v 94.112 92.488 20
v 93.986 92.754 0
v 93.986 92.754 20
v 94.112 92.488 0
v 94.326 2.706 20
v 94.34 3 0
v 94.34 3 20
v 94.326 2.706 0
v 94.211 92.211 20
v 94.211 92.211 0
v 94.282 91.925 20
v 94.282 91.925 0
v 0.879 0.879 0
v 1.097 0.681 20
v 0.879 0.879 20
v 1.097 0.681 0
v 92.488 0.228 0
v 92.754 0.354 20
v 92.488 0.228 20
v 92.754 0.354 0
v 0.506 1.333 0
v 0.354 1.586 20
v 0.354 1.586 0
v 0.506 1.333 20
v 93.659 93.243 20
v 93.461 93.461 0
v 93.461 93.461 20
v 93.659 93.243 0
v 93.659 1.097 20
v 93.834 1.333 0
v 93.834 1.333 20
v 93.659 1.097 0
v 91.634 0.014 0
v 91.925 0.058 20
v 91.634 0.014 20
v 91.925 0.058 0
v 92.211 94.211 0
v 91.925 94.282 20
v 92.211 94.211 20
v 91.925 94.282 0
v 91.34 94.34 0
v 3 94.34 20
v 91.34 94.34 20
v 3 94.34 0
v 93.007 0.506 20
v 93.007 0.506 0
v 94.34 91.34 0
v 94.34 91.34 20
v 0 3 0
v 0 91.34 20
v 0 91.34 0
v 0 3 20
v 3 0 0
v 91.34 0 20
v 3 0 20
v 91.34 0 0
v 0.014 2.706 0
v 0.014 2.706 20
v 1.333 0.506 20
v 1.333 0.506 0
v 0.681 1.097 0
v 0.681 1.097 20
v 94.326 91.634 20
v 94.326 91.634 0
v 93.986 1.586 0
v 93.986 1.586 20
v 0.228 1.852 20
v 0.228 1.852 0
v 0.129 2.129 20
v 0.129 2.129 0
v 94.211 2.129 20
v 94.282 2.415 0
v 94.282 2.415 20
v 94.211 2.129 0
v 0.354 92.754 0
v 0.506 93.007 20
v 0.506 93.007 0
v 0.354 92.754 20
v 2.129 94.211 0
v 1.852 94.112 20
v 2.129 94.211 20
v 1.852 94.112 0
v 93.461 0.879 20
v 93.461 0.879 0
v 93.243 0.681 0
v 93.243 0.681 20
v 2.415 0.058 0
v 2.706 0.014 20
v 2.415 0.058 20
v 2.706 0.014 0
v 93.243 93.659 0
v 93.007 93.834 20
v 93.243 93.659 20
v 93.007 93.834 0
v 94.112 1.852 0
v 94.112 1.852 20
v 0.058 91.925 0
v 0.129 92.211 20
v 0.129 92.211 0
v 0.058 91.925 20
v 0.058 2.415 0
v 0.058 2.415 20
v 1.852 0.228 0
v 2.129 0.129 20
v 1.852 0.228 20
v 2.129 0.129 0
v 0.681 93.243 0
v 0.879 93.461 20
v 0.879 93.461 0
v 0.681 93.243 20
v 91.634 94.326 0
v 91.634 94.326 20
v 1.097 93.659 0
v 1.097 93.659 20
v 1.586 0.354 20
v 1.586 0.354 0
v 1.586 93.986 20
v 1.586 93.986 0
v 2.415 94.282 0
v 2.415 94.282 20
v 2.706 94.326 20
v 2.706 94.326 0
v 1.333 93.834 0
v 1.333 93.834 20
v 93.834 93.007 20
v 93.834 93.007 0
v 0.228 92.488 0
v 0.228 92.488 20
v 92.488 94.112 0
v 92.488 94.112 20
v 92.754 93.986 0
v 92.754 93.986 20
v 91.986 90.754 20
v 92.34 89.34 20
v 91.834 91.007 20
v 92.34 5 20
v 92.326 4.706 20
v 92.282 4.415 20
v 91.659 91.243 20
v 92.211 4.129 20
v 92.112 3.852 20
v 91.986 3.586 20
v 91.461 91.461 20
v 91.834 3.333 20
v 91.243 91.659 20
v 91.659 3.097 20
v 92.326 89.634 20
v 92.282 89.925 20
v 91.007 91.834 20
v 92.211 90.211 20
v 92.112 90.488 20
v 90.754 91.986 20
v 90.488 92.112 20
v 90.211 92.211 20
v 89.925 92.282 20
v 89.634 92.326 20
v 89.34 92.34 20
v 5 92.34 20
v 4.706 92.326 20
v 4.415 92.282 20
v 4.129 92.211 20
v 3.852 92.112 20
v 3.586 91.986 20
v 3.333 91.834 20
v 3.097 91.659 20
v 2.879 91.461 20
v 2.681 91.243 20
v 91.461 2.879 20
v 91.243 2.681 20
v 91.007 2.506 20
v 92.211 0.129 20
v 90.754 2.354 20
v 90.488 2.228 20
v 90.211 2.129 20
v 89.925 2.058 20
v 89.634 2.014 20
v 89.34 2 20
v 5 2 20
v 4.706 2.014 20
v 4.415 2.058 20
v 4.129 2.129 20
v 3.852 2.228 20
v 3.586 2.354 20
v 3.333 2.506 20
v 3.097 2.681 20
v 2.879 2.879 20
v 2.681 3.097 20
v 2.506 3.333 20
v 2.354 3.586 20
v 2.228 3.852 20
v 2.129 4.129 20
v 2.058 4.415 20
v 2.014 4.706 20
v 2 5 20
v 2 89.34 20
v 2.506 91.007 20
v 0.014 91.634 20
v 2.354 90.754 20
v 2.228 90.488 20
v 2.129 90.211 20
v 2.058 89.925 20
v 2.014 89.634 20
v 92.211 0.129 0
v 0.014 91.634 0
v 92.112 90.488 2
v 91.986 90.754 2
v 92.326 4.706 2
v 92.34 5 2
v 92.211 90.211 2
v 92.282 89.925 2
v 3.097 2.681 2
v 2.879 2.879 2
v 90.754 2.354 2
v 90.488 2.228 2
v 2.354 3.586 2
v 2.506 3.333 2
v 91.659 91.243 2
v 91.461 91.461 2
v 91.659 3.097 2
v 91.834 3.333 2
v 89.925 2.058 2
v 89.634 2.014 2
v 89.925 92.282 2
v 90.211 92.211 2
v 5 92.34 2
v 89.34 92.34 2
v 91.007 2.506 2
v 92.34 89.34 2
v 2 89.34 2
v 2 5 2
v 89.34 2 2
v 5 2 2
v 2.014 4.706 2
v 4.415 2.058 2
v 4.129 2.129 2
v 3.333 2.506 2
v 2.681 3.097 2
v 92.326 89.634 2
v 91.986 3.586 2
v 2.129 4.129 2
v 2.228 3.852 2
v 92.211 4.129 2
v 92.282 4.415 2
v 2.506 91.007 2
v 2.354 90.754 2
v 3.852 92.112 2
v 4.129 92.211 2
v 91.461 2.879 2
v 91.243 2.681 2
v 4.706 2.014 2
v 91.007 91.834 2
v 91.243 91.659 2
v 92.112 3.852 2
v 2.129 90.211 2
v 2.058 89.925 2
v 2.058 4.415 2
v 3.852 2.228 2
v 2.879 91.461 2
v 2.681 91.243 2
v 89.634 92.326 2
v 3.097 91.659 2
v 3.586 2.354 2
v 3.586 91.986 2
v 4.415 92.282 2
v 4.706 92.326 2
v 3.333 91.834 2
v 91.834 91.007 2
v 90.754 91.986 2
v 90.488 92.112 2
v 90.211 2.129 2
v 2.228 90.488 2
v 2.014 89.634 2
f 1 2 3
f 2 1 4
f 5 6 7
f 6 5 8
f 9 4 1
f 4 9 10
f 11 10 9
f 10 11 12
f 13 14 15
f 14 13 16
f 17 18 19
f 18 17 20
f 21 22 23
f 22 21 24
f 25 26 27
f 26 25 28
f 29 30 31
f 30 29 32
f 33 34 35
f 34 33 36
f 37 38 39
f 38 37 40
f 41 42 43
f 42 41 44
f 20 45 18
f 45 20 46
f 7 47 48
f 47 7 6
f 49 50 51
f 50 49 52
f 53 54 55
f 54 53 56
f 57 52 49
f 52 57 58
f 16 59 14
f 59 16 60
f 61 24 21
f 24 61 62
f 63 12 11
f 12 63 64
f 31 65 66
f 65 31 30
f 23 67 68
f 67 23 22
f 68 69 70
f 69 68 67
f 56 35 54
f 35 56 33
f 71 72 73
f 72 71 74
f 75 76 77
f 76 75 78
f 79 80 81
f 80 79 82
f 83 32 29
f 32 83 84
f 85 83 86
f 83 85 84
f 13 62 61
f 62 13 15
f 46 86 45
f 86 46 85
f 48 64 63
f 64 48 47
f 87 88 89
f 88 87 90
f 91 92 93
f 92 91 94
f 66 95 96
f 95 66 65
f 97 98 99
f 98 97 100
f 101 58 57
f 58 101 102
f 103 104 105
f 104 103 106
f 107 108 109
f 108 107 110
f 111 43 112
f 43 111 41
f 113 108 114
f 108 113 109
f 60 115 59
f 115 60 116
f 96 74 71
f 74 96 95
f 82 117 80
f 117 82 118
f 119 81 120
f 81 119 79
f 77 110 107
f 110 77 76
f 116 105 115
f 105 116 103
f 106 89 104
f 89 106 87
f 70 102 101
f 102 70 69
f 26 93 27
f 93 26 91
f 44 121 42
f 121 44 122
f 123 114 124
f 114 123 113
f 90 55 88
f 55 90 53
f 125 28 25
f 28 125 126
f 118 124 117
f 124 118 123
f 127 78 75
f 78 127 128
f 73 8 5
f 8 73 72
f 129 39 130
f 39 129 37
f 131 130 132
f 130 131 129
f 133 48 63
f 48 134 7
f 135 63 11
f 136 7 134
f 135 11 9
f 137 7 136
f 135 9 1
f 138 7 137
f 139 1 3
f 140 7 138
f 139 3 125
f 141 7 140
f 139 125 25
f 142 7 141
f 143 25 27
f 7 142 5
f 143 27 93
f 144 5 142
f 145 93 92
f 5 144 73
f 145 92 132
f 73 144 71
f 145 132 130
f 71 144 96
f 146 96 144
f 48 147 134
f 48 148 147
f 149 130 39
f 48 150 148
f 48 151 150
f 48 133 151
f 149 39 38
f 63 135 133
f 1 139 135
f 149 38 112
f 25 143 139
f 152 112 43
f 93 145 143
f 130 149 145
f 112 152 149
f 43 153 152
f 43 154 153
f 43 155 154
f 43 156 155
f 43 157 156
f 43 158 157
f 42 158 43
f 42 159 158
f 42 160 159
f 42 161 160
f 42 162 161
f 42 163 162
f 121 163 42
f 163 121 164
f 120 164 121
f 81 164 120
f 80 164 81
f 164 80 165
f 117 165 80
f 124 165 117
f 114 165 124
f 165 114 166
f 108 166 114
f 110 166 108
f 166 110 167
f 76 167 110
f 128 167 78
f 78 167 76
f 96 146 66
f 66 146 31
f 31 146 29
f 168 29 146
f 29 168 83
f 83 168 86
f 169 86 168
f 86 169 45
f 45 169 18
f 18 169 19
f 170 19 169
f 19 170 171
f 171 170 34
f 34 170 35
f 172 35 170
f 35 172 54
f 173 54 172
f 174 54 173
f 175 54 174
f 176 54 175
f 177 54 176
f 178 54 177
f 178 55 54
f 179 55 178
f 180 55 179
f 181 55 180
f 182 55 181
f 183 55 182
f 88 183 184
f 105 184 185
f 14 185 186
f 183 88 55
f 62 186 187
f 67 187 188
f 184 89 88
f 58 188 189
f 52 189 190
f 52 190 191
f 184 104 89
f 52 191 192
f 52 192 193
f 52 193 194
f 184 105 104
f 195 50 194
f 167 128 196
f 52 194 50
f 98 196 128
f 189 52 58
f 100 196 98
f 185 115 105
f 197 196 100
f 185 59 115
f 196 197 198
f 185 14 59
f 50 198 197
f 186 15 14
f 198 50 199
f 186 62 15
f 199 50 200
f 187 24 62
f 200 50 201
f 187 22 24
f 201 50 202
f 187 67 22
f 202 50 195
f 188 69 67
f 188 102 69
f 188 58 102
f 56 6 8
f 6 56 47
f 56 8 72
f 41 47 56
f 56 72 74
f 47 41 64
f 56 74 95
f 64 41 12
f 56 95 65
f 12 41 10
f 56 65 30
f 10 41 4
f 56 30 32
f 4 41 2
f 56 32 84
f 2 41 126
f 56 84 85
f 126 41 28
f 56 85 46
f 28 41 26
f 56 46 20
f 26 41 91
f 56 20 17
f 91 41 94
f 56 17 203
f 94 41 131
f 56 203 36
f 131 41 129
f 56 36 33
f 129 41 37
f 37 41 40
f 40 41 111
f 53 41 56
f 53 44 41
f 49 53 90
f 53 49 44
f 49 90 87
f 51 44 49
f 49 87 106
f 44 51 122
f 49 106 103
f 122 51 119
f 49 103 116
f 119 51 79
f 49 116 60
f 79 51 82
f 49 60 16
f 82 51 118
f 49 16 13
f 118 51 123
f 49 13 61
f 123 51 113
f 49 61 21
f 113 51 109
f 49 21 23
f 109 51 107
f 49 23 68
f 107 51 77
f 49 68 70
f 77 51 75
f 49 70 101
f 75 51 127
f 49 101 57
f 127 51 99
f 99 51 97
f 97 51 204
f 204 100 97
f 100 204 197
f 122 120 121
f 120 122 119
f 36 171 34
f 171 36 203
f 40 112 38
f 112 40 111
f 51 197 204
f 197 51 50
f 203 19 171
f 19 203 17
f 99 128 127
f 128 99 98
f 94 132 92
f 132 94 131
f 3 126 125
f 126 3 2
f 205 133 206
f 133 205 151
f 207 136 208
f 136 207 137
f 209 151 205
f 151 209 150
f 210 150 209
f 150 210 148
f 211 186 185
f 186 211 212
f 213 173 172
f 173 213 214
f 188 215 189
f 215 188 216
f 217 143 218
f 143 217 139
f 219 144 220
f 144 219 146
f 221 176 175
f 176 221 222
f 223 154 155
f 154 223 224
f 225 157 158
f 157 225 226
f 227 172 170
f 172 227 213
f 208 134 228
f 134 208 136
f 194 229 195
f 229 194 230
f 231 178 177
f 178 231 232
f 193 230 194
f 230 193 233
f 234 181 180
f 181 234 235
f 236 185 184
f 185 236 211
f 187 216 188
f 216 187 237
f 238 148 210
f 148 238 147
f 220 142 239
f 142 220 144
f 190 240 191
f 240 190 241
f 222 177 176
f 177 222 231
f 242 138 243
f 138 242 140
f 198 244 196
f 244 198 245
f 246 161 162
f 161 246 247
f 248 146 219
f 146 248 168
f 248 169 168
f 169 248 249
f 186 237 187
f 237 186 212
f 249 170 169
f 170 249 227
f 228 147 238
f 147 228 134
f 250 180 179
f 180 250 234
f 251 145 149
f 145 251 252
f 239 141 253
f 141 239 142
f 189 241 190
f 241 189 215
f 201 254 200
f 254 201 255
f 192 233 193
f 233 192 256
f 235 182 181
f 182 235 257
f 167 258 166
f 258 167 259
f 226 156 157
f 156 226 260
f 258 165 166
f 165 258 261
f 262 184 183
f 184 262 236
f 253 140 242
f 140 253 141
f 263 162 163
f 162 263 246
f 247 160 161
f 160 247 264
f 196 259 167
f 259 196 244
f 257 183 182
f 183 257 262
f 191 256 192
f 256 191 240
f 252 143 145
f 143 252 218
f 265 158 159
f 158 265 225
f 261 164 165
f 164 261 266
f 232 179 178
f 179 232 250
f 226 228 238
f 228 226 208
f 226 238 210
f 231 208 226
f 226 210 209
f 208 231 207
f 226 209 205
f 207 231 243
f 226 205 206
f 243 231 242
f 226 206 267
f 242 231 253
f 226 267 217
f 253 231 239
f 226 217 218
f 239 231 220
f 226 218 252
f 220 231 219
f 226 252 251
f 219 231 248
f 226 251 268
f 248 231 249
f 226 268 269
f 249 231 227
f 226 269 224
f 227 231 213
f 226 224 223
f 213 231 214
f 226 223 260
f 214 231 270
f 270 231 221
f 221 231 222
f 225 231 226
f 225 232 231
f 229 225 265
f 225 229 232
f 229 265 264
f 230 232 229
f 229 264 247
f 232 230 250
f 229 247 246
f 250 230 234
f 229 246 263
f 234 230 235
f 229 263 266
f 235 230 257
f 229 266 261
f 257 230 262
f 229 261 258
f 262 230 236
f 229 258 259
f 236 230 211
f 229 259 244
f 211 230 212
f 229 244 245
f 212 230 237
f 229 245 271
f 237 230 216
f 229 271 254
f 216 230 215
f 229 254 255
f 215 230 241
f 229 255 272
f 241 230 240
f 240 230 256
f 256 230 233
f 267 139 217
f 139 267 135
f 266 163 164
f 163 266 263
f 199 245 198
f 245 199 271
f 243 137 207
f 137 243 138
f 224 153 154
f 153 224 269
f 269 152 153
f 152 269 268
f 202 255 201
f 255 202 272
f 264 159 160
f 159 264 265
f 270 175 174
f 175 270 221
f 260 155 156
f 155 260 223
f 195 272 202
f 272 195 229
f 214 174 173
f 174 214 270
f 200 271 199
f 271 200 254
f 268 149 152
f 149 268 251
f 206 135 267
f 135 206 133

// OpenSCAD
// file: mixin.scad
$fn = 64;

POT_SIZE = 90;
WALL_WIDTH = 2;
CORNER_RADIUS = 3;

LEG_WIDTH = 6;
LEG_LENGTH = 20;
PIN_DEPTH = 20;
PIN_LENGTH = PIN_DEPTH - WALL_WIDTH * 2;

PIN_WIDTH = 3;
PIN_HEIGHT = POT_SIZE / 2 + POT_SIZE / 4;
FIT_GAP = 0.34;
OVERCUT = 0.1;

FIRST_LEG_Y = CORNER_RADIUS;
SECOND_LEG_Y = POT_SIZE - CORNER_RADIUS - LEG_WIDTH;

SLOT_WIDTH = 3;
SLOT_STEP = 6;

module rounded_box(size = [10, 10, 5], corner_radius = CORNER_RADIUS) {
  translate([size[0] / 2, size[1] / 2, 0]) {
    linear_extrude(height=size[2]) {
      minkowski() {
        square([size[0] - 2 * corner_radius, size[1] - 2 * corner_radius], center=true);
        circle(r=corner_radius);
      }
    }
  }
}

module bottom_slots() {
  between_legs_span = POT_SIZE - 2 * (CORNER_RADIUS + LEG_WIDTH);
  slot_count_half = floor((between_legs_span / 2 - SLOT_WIDTH / 2) / SLOT_STEP);
  for (slot_index = [-slot_count_half:slot_count_half])
    translate([WALL_WIDTH, POT_SIZE / 2 + slot_index * SLOT_STEP - SLOT_WIDTH / 2, -OVERCUT])
      cube([POT_SIZE, SLOT_WIDTH, WALL_WIDTH + OVERCUT * 2]);
}

module pot_shell() {
  rotate([0, -90, 0]) difference() {
    rounded_box([POT_SIZE, POT_SIZE, POT_SIZE]);
    translate([WALL_WIDTH, WALL_WIDTH, WALL_WIDTH])
      rounded_box([
        POT_SIZE - WALL_WIDTH * 2,
        POT_SIZE - WALL_WIDTH * 2,
        POT_SIZE + WALL_WIDTH * 2,
      ]);
    translate([POT_SIZE / 2, -WALL_WIDTH, -WALL_WIDTH])
      cube([POT_SIZE, POT_SIZE + WALL_WIDTH * 2, POT_SIZE * 2]);

    bottom_slots();
  }
}

module angled_cut(leg_y) {
  translate([-0.1 - WALL_WIDTH, leg_y - 0.1, 0]) rotate([0, 40, 0])
    cube([LEG_LENGTH + 0.2, LEG_WIDTH + 0.2, POT_SIZE / 2]);
}

module leg(leg_y) {
  leg_height = POT_SIZE / 2;
  difference() {
    translate([0, leg_y, WALL_WIDTH + FIT_GAP])
      cube([LEG_LENGTH, LEG_WIDTH, leg_height - WALL_WIDTH - FIT_GAP]);

    angled_cut(leg_y);
  }
}

module legs() {
  leg(FIRST_LEG_Y);
  leg(SECOND_LEG_Y);
}

module leg_pin(leg_y, pin_width, pin_length) {
  difference() {
    translate([(PIN_DEPTH - pin_length) / 2, leg_y + (LEG_WIDTH - pin_width) / 2, WALL_WIDTH + FIT_GAP])
      cube([pin_length, pin_width, PIN_HEIGHT]);

    angled_cut(leg_y);
  }
}

module leg_pins(pin_width, pin_length) {
  leg_pin(FIRST_LEG_Y, pin_width, pin_length);
  leg_pin(SECOND_LEG_Y, pin_width, pin_length);
}

module leg_with_socket(leg_y) {
  difference() {
    leg(leg_y);
    translate([0, 0, WALL_WIDTH])
      leg_pin(leg_y, PIN_WIDTH + FIT_GAP, PIN_LENGTH + FIT_GAP);
  }
}

module leg_with_pin(leg_y) {
  leg(leg_y);
  leg_pin(leg_y, PIN_WIDTH, PIN_LENGTH);
}
// main file
include <mixin.scad>;

module outer_shell() {
  outer_extent = POT_SIZE + WALL_WIDTH * 2 + FIT_GAP;

  difference() {
    rounded_box([outer_extent, outer_extent, LEG_LENGTH]);
    translate([WALL_WIDTH, WALL_WIDTH, WALL_WIDTH])
      rounded_box([
        outer_extent - WALL_WIDTH * 2,
        outer_extent - WALL_WIDTH * 2,
        LEG_LENGTH + WALL_WIDTH * 2,
      ]);
  }
}

outer_shell();
